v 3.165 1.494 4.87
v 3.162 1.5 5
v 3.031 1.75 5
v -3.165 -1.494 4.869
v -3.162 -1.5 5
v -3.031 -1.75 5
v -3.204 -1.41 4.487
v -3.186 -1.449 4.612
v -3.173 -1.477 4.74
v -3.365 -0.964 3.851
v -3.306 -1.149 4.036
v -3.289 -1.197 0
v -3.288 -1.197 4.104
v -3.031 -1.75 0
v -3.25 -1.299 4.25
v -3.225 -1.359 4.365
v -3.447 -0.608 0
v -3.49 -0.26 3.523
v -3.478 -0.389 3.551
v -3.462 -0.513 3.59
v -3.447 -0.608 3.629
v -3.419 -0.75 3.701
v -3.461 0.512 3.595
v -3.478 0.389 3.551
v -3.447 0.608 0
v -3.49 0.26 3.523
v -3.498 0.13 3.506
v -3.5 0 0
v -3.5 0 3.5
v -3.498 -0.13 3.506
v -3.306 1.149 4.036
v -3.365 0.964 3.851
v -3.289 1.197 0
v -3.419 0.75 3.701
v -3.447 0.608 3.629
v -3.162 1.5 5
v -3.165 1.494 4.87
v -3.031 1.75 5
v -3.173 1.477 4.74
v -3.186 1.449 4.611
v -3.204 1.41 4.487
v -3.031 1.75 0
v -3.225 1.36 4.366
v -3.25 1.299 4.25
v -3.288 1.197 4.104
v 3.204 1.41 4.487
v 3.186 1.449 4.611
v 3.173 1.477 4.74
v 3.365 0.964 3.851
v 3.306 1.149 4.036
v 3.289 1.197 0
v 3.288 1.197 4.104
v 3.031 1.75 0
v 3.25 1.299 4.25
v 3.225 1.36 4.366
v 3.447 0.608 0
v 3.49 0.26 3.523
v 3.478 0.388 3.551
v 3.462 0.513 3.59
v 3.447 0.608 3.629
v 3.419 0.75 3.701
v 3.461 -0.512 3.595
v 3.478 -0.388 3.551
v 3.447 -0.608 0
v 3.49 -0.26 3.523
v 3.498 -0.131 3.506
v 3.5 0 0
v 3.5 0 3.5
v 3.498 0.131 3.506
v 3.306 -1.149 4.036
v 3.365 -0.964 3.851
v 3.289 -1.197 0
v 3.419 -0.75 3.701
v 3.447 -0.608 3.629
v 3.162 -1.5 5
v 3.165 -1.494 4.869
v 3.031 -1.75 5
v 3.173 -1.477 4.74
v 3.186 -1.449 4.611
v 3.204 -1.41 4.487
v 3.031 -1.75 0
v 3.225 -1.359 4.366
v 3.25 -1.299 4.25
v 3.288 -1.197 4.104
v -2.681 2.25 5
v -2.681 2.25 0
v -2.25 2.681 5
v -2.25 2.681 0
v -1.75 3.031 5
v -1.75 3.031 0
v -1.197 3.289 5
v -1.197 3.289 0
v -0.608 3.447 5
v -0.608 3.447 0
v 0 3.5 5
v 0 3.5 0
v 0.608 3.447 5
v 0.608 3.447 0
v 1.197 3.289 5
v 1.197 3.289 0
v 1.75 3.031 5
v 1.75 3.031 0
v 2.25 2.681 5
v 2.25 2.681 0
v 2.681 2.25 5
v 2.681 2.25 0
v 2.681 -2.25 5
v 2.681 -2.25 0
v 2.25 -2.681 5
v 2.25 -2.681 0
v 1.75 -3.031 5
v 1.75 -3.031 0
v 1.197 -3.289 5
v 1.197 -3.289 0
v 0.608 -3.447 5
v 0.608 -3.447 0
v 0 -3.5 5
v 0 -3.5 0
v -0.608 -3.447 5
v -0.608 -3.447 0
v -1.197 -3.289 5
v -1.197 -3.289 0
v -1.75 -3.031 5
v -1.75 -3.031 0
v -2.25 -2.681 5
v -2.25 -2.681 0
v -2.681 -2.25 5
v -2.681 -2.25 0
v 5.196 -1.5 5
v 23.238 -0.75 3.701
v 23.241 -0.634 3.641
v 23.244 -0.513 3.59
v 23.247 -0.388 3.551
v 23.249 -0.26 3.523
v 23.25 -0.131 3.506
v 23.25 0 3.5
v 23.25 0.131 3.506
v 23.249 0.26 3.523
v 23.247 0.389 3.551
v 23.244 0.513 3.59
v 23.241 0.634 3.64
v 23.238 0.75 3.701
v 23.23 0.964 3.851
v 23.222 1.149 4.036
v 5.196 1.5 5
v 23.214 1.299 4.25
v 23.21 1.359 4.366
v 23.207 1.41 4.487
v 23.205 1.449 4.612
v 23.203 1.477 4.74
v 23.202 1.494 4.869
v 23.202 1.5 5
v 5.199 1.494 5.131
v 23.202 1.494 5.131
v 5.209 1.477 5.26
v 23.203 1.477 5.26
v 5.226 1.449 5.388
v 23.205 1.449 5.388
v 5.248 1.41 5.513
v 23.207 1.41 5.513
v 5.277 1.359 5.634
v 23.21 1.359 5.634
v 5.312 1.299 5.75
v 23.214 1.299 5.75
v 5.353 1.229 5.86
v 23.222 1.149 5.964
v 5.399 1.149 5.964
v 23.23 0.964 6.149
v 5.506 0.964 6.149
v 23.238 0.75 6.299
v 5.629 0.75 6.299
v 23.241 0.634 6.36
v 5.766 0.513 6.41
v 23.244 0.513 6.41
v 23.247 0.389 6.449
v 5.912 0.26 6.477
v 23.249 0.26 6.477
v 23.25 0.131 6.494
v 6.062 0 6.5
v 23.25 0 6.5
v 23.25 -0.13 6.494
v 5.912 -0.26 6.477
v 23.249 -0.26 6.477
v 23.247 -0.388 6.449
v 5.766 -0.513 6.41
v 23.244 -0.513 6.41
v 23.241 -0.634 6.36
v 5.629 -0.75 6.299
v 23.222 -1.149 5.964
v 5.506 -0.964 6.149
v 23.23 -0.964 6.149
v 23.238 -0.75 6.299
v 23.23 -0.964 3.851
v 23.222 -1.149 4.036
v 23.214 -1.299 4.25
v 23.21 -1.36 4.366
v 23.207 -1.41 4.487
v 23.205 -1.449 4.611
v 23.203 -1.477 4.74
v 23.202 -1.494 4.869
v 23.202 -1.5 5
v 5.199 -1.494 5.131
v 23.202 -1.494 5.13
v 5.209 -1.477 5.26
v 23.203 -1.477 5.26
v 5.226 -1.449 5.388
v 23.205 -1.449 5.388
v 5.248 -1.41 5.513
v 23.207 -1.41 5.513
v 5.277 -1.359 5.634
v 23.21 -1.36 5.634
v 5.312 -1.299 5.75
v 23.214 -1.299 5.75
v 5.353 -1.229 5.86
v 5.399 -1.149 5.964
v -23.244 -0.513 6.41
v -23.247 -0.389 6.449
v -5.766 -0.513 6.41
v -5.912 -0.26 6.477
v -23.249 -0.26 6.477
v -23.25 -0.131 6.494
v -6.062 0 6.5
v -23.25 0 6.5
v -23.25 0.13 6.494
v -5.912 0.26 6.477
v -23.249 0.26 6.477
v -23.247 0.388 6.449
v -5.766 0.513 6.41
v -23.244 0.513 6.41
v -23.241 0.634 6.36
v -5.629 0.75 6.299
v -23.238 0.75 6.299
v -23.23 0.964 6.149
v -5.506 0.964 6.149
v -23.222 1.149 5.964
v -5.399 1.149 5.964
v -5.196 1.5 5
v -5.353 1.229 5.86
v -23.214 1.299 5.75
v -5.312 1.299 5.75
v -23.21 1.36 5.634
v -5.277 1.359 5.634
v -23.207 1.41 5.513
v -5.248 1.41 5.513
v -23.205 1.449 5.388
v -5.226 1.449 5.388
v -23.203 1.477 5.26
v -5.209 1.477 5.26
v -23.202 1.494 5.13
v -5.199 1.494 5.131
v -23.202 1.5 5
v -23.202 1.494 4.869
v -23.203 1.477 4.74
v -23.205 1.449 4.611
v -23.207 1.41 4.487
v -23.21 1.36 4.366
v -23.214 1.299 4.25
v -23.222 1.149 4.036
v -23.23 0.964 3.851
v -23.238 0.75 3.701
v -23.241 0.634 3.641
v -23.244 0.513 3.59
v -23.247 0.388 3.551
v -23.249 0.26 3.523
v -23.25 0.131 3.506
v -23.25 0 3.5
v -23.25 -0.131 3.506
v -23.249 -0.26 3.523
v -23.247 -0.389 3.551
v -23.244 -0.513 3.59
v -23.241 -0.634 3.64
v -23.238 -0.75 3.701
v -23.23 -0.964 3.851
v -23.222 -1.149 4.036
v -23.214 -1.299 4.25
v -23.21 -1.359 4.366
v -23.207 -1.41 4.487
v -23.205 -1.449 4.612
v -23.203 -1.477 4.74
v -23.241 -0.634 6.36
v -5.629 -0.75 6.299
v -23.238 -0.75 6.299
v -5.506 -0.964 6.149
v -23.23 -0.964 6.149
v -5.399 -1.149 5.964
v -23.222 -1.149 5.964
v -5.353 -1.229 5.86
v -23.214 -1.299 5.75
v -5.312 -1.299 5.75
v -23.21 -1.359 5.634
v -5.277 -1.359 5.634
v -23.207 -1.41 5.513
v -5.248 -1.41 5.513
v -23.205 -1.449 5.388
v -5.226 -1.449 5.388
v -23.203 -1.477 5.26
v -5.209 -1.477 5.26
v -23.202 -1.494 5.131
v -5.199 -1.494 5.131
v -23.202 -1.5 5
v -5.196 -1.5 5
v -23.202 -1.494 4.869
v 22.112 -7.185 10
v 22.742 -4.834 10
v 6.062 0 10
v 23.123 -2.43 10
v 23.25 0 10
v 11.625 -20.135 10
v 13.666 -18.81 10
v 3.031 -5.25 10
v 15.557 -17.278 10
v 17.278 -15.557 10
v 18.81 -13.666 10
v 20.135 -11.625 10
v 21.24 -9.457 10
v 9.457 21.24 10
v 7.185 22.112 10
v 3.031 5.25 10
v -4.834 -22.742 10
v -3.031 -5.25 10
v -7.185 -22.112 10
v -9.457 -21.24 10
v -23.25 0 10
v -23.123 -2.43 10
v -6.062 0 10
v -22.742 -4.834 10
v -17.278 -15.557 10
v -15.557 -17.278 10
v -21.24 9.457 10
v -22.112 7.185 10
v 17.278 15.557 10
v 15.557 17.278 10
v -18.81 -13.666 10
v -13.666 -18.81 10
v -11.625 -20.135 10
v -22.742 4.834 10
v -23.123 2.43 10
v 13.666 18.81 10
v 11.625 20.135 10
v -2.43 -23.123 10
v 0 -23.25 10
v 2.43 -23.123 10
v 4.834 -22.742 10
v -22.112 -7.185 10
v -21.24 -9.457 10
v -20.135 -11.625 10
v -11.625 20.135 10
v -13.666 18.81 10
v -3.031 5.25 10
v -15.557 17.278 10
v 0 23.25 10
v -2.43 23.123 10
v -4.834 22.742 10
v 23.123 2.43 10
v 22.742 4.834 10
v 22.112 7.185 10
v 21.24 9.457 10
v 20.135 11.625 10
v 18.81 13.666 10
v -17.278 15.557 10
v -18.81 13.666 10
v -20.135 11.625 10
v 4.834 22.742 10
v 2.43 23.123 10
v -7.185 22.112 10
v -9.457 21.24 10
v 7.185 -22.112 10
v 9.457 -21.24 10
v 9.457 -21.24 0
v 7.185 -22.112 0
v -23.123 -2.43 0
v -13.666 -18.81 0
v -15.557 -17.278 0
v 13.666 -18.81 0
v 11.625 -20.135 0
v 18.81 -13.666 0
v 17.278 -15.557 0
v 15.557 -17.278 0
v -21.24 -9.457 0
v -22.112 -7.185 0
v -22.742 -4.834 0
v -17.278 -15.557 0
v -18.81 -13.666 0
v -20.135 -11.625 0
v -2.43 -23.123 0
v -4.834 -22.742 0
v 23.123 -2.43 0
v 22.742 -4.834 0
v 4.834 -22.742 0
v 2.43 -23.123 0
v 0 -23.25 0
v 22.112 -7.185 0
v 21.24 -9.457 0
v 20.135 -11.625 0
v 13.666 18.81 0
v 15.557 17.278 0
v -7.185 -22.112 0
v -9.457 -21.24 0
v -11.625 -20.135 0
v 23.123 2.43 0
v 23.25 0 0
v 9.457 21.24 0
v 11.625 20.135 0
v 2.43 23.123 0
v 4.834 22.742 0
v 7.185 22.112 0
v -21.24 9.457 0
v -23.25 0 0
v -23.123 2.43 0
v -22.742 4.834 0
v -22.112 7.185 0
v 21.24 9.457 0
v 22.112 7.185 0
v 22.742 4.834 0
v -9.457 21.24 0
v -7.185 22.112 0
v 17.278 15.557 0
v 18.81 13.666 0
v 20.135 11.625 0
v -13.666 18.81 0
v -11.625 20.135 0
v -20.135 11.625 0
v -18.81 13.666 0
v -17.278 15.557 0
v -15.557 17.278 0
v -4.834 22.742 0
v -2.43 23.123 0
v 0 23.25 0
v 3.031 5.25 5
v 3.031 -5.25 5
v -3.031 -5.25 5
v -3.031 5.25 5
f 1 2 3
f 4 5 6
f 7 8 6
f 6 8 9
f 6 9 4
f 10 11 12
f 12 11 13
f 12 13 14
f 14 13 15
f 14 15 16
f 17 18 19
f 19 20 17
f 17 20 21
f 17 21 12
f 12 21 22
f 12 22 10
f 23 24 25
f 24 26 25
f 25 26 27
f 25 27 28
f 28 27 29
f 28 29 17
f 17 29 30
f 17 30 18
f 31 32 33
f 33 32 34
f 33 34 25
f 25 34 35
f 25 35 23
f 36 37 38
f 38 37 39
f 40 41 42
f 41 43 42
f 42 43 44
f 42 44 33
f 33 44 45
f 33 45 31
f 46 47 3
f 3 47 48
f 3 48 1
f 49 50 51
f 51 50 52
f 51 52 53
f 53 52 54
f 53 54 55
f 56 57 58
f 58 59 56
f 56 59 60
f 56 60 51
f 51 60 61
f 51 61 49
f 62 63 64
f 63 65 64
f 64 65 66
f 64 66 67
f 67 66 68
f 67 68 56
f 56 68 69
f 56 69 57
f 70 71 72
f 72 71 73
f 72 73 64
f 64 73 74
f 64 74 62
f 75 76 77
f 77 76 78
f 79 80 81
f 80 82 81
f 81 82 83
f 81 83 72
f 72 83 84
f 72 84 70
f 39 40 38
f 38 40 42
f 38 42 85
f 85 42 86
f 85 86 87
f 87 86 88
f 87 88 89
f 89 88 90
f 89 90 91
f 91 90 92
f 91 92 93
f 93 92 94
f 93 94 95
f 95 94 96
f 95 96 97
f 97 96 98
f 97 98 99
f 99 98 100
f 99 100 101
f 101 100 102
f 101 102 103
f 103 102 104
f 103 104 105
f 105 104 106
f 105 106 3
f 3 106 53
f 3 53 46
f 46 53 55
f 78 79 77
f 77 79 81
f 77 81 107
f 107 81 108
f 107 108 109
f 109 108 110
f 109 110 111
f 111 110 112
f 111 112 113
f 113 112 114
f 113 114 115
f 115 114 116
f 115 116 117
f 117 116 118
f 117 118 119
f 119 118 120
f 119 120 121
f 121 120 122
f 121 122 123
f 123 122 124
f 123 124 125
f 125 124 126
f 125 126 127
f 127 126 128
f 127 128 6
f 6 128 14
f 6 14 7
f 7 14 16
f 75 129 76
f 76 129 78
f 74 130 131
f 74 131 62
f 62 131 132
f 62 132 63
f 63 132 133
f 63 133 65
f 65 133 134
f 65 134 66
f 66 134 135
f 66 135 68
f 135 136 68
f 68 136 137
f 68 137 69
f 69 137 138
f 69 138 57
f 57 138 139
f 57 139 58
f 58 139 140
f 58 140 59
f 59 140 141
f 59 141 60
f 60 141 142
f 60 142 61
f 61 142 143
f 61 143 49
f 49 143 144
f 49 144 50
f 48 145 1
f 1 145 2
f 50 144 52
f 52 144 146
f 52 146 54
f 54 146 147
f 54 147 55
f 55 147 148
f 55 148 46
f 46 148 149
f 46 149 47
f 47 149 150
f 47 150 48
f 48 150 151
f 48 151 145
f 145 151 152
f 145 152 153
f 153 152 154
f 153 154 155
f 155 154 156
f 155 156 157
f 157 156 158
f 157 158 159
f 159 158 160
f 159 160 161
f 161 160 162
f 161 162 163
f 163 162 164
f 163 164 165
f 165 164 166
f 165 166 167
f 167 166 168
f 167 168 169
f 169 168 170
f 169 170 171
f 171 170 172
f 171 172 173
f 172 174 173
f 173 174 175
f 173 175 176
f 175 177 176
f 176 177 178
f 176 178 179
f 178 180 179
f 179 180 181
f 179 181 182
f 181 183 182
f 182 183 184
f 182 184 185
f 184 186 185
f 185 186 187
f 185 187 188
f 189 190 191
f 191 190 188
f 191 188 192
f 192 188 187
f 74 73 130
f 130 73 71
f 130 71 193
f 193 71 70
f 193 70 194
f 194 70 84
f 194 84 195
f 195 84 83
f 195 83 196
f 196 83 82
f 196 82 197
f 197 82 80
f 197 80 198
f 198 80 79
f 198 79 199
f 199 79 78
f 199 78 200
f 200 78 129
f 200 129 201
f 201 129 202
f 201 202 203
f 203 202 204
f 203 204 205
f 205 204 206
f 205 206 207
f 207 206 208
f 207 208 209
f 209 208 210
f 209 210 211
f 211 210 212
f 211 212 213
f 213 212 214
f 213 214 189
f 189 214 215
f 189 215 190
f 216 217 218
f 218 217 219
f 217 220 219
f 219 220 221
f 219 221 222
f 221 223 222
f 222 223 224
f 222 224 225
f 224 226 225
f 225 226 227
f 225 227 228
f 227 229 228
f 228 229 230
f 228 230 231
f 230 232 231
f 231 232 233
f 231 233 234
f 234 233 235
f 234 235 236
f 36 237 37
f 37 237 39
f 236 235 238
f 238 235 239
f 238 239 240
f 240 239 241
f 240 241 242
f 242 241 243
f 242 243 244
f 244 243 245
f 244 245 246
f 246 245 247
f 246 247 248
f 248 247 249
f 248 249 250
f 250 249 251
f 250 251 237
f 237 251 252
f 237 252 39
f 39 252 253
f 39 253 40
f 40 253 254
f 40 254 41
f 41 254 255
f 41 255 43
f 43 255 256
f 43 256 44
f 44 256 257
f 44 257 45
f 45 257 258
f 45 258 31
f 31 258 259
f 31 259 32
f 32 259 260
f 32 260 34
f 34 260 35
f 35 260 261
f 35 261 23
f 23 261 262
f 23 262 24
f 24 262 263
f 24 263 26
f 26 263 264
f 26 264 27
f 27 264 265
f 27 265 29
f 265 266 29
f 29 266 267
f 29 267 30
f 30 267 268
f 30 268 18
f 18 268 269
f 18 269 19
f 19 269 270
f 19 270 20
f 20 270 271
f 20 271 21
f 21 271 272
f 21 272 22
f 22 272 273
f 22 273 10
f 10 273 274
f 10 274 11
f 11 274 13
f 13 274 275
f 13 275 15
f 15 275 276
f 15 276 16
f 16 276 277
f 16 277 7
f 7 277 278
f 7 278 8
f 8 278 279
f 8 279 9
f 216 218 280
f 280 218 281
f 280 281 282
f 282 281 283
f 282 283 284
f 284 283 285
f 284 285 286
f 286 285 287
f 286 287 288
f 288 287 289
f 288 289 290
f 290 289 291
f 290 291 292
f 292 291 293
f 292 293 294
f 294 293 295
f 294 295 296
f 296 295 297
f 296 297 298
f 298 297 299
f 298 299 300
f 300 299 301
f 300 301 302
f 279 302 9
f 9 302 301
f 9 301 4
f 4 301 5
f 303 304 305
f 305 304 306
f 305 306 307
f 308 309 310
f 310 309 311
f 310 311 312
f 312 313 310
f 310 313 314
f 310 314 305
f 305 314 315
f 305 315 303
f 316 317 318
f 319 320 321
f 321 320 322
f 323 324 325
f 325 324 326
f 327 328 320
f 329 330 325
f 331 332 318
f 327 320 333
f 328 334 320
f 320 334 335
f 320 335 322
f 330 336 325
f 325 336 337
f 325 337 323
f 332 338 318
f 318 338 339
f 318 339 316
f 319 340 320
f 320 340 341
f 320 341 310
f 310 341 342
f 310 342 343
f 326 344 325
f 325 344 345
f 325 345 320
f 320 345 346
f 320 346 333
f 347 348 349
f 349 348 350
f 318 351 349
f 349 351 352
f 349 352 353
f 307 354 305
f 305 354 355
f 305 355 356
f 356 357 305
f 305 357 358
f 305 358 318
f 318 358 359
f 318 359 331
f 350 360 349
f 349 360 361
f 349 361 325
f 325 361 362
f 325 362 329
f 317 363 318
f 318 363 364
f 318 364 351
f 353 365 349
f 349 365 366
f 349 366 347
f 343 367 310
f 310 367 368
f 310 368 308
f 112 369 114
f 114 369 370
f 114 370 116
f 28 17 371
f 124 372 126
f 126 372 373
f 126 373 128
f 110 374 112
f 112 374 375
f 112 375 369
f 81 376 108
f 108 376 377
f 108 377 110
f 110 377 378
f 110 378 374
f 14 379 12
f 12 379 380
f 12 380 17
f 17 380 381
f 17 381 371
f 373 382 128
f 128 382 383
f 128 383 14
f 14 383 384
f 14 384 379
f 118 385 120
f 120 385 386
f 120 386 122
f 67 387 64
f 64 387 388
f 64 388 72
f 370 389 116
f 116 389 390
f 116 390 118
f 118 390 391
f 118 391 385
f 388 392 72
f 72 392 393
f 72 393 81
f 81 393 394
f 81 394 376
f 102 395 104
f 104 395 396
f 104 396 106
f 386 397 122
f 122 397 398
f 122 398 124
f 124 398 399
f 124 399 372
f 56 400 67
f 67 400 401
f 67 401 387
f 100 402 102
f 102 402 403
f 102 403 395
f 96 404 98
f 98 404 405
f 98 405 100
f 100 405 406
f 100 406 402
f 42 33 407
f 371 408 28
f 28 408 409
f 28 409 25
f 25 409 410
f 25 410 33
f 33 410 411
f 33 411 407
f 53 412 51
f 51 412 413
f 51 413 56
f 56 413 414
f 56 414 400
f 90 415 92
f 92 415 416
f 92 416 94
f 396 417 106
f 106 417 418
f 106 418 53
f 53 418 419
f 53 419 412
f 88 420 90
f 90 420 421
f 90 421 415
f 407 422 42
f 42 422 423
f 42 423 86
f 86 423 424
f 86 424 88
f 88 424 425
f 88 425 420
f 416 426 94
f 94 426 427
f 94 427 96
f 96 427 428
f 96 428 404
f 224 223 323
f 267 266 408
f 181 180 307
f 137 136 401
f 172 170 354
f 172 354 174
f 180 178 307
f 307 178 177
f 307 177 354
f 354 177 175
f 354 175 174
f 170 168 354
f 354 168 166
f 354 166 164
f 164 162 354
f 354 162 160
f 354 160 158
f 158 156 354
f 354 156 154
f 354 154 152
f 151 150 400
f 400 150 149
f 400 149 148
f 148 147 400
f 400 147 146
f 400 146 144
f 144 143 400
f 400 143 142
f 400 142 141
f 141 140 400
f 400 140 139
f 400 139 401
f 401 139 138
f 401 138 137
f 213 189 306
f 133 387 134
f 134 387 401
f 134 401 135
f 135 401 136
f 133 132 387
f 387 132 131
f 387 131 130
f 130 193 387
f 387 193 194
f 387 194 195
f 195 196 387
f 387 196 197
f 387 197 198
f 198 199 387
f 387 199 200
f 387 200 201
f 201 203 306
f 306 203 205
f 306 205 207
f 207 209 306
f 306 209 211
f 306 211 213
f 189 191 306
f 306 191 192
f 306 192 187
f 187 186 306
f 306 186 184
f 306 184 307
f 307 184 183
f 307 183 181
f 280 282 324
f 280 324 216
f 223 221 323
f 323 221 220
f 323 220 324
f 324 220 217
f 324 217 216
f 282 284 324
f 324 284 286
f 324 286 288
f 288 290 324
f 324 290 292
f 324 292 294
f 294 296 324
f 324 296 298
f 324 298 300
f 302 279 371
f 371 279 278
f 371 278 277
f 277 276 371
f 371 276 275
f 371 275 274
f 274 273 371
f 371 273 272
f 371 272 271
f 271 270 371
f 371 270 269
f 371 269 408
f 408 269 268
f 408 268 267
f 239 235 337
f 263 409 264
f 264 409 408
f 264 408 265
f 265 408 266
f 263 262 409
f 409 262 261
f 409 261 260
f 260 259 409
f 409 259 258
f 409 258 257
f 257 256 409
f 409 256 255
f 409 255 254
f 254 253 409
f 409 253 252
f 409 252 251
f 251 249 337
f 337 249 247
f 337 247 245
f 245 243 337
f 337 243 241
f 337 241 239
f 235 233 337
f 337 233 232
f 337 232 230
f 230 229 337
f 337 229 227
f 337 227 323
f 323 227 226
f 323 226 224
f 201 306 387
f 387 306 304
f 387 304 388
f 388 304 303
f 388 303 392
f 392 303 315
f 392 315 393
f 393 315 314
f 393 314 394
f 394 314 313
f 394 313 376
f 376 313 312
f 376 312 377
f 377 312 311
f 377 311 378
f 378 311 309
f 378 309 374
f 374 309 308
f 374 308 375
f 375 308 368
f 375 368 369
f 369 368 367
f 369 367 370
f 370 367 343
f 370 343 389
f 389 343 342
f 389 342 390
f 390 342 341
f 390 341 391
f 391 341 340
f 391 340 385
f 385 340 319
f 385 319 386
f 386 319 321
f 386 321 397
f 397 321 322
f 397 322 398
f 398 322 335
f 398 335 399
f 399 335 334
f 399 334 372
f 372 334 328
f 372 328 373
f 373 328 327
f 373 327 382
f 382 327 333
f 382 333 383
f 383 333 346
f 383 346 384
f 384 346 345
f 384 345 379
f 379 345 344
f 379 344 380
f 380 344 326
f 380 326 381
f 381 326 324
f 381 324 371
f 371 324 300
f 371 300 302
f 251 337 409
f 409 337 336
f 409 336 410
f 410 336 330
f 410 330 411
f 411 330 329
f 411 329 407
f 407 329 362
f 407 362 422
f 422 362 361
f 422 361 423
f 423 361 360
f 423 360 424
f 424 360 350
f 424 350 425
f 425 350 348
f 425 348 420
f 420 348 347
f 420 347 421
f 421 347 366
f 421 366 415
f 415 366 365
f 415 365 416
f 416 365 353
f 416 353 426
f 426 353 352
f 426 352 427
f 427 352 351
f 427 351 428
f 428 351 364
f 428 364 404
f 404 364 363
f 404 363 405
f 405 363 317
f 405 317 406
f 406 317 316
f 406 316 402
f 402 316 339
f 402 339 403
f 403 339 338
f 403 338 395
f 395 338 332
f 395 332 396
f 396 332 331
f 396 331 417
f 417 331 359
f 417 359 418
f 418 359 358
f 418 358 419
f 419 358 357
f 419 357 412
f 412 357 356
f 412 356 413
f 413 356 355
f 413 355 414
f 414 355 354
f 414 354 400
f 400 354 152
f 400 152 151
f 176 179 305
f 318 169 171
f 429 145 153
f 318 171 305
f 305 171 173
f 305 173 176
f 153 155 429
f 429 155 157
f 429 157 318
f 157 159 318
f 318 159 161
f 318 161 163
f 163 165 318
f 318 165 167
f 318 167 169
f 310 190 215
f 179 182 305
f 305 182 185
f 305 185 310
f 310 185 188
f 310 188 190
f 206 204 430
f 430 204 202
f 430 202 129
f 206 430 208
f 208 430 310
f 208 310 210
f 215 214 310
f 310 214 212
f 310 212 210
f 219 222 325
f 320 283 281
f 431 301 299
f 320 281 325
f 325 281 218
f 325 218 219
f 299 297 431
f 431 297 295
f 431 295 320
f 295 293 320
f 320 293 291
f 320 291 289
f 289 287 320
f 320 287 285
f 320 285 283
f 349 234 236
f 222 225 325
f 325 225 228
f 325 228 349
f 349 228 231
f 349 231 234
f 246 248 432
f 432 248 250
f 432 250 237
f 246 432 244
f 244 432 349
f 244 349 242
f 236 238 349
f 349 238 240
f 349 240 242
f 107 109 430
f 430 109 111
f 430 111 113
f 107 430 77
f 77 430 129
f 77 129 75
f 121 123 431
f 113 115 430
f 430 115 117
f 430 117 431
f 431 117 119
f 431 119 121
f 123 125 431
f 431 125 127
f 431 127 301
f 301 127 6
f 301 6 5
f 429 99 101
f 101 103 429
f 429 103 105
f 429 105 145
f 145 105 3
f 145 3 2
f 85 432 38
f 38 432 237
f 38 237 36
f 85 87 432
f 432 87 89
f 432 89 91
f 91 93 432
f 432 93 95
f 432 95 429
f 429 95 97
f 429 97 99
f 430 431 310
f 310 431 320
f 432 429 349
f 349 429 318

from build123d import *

# Parameters (mm, degrees)
SKETCH_1_R               = 23.25
SKETCH_1_R_2             = 3.5
EXTRUDE_1_DEPTH          = 10
SKETCH_2_R               = 1.5
CUT_EXTRUDE_1_DEPTH      = 24.25
CUT_EXTRUDE_1_DEPTH_BACK = 24.25
CUT_EXTRUDE_3_DEPTH      = 5


with BuildPart() as part:
    # Эскиз1 → Бобышка-Вытянуть1 (new body)
    with BuildSketch(Plane.XY):
        Circle(SKETCH_1_R)
        Circle(SKETCH_1_R_2, mode=Mode.SUBTRACT)
    extrude(amount=EXTRUDE_1_DEPTH)

    # Эскиз2 → Вырез-Вытянуть1 (cut, two sides)
    with BuildSketch(Plane(origin=(0, 0, 0), x_dir=(0, 0, -1), z_dir=(1, 0, 0))) as cut_extrude_1_sk:
        with Locations((-5, 0)):
            Circle(SKETCH_2_R)
    extrude(amount=CUT_EXTRUDE_1_DEPTH, mode=Mode.SUBTRACT)
    extrude(cut_extrude_1_sk.sketch, amount=-CUT_EXTRUDE_1_DEPTH_BACK, mode=Mode.SUBTRACT)

    # Эскиз3 → Вырез-Вытянуть3 (cut)
    with BuildSketch(Plane.XY.offset(10)):
        Polygon((3.031088913, 5.25), (-3.031088913, 5.25), (-6.062177826, 0), (-3.031088913, -5.25), (3.031088913, -5.25), (6.062177826, 0), align=None)
    extrude(amount=-CUT_EXTRUDE_3_DEPTH, mode=Mode.SUBTRACT)


solid = part.part
